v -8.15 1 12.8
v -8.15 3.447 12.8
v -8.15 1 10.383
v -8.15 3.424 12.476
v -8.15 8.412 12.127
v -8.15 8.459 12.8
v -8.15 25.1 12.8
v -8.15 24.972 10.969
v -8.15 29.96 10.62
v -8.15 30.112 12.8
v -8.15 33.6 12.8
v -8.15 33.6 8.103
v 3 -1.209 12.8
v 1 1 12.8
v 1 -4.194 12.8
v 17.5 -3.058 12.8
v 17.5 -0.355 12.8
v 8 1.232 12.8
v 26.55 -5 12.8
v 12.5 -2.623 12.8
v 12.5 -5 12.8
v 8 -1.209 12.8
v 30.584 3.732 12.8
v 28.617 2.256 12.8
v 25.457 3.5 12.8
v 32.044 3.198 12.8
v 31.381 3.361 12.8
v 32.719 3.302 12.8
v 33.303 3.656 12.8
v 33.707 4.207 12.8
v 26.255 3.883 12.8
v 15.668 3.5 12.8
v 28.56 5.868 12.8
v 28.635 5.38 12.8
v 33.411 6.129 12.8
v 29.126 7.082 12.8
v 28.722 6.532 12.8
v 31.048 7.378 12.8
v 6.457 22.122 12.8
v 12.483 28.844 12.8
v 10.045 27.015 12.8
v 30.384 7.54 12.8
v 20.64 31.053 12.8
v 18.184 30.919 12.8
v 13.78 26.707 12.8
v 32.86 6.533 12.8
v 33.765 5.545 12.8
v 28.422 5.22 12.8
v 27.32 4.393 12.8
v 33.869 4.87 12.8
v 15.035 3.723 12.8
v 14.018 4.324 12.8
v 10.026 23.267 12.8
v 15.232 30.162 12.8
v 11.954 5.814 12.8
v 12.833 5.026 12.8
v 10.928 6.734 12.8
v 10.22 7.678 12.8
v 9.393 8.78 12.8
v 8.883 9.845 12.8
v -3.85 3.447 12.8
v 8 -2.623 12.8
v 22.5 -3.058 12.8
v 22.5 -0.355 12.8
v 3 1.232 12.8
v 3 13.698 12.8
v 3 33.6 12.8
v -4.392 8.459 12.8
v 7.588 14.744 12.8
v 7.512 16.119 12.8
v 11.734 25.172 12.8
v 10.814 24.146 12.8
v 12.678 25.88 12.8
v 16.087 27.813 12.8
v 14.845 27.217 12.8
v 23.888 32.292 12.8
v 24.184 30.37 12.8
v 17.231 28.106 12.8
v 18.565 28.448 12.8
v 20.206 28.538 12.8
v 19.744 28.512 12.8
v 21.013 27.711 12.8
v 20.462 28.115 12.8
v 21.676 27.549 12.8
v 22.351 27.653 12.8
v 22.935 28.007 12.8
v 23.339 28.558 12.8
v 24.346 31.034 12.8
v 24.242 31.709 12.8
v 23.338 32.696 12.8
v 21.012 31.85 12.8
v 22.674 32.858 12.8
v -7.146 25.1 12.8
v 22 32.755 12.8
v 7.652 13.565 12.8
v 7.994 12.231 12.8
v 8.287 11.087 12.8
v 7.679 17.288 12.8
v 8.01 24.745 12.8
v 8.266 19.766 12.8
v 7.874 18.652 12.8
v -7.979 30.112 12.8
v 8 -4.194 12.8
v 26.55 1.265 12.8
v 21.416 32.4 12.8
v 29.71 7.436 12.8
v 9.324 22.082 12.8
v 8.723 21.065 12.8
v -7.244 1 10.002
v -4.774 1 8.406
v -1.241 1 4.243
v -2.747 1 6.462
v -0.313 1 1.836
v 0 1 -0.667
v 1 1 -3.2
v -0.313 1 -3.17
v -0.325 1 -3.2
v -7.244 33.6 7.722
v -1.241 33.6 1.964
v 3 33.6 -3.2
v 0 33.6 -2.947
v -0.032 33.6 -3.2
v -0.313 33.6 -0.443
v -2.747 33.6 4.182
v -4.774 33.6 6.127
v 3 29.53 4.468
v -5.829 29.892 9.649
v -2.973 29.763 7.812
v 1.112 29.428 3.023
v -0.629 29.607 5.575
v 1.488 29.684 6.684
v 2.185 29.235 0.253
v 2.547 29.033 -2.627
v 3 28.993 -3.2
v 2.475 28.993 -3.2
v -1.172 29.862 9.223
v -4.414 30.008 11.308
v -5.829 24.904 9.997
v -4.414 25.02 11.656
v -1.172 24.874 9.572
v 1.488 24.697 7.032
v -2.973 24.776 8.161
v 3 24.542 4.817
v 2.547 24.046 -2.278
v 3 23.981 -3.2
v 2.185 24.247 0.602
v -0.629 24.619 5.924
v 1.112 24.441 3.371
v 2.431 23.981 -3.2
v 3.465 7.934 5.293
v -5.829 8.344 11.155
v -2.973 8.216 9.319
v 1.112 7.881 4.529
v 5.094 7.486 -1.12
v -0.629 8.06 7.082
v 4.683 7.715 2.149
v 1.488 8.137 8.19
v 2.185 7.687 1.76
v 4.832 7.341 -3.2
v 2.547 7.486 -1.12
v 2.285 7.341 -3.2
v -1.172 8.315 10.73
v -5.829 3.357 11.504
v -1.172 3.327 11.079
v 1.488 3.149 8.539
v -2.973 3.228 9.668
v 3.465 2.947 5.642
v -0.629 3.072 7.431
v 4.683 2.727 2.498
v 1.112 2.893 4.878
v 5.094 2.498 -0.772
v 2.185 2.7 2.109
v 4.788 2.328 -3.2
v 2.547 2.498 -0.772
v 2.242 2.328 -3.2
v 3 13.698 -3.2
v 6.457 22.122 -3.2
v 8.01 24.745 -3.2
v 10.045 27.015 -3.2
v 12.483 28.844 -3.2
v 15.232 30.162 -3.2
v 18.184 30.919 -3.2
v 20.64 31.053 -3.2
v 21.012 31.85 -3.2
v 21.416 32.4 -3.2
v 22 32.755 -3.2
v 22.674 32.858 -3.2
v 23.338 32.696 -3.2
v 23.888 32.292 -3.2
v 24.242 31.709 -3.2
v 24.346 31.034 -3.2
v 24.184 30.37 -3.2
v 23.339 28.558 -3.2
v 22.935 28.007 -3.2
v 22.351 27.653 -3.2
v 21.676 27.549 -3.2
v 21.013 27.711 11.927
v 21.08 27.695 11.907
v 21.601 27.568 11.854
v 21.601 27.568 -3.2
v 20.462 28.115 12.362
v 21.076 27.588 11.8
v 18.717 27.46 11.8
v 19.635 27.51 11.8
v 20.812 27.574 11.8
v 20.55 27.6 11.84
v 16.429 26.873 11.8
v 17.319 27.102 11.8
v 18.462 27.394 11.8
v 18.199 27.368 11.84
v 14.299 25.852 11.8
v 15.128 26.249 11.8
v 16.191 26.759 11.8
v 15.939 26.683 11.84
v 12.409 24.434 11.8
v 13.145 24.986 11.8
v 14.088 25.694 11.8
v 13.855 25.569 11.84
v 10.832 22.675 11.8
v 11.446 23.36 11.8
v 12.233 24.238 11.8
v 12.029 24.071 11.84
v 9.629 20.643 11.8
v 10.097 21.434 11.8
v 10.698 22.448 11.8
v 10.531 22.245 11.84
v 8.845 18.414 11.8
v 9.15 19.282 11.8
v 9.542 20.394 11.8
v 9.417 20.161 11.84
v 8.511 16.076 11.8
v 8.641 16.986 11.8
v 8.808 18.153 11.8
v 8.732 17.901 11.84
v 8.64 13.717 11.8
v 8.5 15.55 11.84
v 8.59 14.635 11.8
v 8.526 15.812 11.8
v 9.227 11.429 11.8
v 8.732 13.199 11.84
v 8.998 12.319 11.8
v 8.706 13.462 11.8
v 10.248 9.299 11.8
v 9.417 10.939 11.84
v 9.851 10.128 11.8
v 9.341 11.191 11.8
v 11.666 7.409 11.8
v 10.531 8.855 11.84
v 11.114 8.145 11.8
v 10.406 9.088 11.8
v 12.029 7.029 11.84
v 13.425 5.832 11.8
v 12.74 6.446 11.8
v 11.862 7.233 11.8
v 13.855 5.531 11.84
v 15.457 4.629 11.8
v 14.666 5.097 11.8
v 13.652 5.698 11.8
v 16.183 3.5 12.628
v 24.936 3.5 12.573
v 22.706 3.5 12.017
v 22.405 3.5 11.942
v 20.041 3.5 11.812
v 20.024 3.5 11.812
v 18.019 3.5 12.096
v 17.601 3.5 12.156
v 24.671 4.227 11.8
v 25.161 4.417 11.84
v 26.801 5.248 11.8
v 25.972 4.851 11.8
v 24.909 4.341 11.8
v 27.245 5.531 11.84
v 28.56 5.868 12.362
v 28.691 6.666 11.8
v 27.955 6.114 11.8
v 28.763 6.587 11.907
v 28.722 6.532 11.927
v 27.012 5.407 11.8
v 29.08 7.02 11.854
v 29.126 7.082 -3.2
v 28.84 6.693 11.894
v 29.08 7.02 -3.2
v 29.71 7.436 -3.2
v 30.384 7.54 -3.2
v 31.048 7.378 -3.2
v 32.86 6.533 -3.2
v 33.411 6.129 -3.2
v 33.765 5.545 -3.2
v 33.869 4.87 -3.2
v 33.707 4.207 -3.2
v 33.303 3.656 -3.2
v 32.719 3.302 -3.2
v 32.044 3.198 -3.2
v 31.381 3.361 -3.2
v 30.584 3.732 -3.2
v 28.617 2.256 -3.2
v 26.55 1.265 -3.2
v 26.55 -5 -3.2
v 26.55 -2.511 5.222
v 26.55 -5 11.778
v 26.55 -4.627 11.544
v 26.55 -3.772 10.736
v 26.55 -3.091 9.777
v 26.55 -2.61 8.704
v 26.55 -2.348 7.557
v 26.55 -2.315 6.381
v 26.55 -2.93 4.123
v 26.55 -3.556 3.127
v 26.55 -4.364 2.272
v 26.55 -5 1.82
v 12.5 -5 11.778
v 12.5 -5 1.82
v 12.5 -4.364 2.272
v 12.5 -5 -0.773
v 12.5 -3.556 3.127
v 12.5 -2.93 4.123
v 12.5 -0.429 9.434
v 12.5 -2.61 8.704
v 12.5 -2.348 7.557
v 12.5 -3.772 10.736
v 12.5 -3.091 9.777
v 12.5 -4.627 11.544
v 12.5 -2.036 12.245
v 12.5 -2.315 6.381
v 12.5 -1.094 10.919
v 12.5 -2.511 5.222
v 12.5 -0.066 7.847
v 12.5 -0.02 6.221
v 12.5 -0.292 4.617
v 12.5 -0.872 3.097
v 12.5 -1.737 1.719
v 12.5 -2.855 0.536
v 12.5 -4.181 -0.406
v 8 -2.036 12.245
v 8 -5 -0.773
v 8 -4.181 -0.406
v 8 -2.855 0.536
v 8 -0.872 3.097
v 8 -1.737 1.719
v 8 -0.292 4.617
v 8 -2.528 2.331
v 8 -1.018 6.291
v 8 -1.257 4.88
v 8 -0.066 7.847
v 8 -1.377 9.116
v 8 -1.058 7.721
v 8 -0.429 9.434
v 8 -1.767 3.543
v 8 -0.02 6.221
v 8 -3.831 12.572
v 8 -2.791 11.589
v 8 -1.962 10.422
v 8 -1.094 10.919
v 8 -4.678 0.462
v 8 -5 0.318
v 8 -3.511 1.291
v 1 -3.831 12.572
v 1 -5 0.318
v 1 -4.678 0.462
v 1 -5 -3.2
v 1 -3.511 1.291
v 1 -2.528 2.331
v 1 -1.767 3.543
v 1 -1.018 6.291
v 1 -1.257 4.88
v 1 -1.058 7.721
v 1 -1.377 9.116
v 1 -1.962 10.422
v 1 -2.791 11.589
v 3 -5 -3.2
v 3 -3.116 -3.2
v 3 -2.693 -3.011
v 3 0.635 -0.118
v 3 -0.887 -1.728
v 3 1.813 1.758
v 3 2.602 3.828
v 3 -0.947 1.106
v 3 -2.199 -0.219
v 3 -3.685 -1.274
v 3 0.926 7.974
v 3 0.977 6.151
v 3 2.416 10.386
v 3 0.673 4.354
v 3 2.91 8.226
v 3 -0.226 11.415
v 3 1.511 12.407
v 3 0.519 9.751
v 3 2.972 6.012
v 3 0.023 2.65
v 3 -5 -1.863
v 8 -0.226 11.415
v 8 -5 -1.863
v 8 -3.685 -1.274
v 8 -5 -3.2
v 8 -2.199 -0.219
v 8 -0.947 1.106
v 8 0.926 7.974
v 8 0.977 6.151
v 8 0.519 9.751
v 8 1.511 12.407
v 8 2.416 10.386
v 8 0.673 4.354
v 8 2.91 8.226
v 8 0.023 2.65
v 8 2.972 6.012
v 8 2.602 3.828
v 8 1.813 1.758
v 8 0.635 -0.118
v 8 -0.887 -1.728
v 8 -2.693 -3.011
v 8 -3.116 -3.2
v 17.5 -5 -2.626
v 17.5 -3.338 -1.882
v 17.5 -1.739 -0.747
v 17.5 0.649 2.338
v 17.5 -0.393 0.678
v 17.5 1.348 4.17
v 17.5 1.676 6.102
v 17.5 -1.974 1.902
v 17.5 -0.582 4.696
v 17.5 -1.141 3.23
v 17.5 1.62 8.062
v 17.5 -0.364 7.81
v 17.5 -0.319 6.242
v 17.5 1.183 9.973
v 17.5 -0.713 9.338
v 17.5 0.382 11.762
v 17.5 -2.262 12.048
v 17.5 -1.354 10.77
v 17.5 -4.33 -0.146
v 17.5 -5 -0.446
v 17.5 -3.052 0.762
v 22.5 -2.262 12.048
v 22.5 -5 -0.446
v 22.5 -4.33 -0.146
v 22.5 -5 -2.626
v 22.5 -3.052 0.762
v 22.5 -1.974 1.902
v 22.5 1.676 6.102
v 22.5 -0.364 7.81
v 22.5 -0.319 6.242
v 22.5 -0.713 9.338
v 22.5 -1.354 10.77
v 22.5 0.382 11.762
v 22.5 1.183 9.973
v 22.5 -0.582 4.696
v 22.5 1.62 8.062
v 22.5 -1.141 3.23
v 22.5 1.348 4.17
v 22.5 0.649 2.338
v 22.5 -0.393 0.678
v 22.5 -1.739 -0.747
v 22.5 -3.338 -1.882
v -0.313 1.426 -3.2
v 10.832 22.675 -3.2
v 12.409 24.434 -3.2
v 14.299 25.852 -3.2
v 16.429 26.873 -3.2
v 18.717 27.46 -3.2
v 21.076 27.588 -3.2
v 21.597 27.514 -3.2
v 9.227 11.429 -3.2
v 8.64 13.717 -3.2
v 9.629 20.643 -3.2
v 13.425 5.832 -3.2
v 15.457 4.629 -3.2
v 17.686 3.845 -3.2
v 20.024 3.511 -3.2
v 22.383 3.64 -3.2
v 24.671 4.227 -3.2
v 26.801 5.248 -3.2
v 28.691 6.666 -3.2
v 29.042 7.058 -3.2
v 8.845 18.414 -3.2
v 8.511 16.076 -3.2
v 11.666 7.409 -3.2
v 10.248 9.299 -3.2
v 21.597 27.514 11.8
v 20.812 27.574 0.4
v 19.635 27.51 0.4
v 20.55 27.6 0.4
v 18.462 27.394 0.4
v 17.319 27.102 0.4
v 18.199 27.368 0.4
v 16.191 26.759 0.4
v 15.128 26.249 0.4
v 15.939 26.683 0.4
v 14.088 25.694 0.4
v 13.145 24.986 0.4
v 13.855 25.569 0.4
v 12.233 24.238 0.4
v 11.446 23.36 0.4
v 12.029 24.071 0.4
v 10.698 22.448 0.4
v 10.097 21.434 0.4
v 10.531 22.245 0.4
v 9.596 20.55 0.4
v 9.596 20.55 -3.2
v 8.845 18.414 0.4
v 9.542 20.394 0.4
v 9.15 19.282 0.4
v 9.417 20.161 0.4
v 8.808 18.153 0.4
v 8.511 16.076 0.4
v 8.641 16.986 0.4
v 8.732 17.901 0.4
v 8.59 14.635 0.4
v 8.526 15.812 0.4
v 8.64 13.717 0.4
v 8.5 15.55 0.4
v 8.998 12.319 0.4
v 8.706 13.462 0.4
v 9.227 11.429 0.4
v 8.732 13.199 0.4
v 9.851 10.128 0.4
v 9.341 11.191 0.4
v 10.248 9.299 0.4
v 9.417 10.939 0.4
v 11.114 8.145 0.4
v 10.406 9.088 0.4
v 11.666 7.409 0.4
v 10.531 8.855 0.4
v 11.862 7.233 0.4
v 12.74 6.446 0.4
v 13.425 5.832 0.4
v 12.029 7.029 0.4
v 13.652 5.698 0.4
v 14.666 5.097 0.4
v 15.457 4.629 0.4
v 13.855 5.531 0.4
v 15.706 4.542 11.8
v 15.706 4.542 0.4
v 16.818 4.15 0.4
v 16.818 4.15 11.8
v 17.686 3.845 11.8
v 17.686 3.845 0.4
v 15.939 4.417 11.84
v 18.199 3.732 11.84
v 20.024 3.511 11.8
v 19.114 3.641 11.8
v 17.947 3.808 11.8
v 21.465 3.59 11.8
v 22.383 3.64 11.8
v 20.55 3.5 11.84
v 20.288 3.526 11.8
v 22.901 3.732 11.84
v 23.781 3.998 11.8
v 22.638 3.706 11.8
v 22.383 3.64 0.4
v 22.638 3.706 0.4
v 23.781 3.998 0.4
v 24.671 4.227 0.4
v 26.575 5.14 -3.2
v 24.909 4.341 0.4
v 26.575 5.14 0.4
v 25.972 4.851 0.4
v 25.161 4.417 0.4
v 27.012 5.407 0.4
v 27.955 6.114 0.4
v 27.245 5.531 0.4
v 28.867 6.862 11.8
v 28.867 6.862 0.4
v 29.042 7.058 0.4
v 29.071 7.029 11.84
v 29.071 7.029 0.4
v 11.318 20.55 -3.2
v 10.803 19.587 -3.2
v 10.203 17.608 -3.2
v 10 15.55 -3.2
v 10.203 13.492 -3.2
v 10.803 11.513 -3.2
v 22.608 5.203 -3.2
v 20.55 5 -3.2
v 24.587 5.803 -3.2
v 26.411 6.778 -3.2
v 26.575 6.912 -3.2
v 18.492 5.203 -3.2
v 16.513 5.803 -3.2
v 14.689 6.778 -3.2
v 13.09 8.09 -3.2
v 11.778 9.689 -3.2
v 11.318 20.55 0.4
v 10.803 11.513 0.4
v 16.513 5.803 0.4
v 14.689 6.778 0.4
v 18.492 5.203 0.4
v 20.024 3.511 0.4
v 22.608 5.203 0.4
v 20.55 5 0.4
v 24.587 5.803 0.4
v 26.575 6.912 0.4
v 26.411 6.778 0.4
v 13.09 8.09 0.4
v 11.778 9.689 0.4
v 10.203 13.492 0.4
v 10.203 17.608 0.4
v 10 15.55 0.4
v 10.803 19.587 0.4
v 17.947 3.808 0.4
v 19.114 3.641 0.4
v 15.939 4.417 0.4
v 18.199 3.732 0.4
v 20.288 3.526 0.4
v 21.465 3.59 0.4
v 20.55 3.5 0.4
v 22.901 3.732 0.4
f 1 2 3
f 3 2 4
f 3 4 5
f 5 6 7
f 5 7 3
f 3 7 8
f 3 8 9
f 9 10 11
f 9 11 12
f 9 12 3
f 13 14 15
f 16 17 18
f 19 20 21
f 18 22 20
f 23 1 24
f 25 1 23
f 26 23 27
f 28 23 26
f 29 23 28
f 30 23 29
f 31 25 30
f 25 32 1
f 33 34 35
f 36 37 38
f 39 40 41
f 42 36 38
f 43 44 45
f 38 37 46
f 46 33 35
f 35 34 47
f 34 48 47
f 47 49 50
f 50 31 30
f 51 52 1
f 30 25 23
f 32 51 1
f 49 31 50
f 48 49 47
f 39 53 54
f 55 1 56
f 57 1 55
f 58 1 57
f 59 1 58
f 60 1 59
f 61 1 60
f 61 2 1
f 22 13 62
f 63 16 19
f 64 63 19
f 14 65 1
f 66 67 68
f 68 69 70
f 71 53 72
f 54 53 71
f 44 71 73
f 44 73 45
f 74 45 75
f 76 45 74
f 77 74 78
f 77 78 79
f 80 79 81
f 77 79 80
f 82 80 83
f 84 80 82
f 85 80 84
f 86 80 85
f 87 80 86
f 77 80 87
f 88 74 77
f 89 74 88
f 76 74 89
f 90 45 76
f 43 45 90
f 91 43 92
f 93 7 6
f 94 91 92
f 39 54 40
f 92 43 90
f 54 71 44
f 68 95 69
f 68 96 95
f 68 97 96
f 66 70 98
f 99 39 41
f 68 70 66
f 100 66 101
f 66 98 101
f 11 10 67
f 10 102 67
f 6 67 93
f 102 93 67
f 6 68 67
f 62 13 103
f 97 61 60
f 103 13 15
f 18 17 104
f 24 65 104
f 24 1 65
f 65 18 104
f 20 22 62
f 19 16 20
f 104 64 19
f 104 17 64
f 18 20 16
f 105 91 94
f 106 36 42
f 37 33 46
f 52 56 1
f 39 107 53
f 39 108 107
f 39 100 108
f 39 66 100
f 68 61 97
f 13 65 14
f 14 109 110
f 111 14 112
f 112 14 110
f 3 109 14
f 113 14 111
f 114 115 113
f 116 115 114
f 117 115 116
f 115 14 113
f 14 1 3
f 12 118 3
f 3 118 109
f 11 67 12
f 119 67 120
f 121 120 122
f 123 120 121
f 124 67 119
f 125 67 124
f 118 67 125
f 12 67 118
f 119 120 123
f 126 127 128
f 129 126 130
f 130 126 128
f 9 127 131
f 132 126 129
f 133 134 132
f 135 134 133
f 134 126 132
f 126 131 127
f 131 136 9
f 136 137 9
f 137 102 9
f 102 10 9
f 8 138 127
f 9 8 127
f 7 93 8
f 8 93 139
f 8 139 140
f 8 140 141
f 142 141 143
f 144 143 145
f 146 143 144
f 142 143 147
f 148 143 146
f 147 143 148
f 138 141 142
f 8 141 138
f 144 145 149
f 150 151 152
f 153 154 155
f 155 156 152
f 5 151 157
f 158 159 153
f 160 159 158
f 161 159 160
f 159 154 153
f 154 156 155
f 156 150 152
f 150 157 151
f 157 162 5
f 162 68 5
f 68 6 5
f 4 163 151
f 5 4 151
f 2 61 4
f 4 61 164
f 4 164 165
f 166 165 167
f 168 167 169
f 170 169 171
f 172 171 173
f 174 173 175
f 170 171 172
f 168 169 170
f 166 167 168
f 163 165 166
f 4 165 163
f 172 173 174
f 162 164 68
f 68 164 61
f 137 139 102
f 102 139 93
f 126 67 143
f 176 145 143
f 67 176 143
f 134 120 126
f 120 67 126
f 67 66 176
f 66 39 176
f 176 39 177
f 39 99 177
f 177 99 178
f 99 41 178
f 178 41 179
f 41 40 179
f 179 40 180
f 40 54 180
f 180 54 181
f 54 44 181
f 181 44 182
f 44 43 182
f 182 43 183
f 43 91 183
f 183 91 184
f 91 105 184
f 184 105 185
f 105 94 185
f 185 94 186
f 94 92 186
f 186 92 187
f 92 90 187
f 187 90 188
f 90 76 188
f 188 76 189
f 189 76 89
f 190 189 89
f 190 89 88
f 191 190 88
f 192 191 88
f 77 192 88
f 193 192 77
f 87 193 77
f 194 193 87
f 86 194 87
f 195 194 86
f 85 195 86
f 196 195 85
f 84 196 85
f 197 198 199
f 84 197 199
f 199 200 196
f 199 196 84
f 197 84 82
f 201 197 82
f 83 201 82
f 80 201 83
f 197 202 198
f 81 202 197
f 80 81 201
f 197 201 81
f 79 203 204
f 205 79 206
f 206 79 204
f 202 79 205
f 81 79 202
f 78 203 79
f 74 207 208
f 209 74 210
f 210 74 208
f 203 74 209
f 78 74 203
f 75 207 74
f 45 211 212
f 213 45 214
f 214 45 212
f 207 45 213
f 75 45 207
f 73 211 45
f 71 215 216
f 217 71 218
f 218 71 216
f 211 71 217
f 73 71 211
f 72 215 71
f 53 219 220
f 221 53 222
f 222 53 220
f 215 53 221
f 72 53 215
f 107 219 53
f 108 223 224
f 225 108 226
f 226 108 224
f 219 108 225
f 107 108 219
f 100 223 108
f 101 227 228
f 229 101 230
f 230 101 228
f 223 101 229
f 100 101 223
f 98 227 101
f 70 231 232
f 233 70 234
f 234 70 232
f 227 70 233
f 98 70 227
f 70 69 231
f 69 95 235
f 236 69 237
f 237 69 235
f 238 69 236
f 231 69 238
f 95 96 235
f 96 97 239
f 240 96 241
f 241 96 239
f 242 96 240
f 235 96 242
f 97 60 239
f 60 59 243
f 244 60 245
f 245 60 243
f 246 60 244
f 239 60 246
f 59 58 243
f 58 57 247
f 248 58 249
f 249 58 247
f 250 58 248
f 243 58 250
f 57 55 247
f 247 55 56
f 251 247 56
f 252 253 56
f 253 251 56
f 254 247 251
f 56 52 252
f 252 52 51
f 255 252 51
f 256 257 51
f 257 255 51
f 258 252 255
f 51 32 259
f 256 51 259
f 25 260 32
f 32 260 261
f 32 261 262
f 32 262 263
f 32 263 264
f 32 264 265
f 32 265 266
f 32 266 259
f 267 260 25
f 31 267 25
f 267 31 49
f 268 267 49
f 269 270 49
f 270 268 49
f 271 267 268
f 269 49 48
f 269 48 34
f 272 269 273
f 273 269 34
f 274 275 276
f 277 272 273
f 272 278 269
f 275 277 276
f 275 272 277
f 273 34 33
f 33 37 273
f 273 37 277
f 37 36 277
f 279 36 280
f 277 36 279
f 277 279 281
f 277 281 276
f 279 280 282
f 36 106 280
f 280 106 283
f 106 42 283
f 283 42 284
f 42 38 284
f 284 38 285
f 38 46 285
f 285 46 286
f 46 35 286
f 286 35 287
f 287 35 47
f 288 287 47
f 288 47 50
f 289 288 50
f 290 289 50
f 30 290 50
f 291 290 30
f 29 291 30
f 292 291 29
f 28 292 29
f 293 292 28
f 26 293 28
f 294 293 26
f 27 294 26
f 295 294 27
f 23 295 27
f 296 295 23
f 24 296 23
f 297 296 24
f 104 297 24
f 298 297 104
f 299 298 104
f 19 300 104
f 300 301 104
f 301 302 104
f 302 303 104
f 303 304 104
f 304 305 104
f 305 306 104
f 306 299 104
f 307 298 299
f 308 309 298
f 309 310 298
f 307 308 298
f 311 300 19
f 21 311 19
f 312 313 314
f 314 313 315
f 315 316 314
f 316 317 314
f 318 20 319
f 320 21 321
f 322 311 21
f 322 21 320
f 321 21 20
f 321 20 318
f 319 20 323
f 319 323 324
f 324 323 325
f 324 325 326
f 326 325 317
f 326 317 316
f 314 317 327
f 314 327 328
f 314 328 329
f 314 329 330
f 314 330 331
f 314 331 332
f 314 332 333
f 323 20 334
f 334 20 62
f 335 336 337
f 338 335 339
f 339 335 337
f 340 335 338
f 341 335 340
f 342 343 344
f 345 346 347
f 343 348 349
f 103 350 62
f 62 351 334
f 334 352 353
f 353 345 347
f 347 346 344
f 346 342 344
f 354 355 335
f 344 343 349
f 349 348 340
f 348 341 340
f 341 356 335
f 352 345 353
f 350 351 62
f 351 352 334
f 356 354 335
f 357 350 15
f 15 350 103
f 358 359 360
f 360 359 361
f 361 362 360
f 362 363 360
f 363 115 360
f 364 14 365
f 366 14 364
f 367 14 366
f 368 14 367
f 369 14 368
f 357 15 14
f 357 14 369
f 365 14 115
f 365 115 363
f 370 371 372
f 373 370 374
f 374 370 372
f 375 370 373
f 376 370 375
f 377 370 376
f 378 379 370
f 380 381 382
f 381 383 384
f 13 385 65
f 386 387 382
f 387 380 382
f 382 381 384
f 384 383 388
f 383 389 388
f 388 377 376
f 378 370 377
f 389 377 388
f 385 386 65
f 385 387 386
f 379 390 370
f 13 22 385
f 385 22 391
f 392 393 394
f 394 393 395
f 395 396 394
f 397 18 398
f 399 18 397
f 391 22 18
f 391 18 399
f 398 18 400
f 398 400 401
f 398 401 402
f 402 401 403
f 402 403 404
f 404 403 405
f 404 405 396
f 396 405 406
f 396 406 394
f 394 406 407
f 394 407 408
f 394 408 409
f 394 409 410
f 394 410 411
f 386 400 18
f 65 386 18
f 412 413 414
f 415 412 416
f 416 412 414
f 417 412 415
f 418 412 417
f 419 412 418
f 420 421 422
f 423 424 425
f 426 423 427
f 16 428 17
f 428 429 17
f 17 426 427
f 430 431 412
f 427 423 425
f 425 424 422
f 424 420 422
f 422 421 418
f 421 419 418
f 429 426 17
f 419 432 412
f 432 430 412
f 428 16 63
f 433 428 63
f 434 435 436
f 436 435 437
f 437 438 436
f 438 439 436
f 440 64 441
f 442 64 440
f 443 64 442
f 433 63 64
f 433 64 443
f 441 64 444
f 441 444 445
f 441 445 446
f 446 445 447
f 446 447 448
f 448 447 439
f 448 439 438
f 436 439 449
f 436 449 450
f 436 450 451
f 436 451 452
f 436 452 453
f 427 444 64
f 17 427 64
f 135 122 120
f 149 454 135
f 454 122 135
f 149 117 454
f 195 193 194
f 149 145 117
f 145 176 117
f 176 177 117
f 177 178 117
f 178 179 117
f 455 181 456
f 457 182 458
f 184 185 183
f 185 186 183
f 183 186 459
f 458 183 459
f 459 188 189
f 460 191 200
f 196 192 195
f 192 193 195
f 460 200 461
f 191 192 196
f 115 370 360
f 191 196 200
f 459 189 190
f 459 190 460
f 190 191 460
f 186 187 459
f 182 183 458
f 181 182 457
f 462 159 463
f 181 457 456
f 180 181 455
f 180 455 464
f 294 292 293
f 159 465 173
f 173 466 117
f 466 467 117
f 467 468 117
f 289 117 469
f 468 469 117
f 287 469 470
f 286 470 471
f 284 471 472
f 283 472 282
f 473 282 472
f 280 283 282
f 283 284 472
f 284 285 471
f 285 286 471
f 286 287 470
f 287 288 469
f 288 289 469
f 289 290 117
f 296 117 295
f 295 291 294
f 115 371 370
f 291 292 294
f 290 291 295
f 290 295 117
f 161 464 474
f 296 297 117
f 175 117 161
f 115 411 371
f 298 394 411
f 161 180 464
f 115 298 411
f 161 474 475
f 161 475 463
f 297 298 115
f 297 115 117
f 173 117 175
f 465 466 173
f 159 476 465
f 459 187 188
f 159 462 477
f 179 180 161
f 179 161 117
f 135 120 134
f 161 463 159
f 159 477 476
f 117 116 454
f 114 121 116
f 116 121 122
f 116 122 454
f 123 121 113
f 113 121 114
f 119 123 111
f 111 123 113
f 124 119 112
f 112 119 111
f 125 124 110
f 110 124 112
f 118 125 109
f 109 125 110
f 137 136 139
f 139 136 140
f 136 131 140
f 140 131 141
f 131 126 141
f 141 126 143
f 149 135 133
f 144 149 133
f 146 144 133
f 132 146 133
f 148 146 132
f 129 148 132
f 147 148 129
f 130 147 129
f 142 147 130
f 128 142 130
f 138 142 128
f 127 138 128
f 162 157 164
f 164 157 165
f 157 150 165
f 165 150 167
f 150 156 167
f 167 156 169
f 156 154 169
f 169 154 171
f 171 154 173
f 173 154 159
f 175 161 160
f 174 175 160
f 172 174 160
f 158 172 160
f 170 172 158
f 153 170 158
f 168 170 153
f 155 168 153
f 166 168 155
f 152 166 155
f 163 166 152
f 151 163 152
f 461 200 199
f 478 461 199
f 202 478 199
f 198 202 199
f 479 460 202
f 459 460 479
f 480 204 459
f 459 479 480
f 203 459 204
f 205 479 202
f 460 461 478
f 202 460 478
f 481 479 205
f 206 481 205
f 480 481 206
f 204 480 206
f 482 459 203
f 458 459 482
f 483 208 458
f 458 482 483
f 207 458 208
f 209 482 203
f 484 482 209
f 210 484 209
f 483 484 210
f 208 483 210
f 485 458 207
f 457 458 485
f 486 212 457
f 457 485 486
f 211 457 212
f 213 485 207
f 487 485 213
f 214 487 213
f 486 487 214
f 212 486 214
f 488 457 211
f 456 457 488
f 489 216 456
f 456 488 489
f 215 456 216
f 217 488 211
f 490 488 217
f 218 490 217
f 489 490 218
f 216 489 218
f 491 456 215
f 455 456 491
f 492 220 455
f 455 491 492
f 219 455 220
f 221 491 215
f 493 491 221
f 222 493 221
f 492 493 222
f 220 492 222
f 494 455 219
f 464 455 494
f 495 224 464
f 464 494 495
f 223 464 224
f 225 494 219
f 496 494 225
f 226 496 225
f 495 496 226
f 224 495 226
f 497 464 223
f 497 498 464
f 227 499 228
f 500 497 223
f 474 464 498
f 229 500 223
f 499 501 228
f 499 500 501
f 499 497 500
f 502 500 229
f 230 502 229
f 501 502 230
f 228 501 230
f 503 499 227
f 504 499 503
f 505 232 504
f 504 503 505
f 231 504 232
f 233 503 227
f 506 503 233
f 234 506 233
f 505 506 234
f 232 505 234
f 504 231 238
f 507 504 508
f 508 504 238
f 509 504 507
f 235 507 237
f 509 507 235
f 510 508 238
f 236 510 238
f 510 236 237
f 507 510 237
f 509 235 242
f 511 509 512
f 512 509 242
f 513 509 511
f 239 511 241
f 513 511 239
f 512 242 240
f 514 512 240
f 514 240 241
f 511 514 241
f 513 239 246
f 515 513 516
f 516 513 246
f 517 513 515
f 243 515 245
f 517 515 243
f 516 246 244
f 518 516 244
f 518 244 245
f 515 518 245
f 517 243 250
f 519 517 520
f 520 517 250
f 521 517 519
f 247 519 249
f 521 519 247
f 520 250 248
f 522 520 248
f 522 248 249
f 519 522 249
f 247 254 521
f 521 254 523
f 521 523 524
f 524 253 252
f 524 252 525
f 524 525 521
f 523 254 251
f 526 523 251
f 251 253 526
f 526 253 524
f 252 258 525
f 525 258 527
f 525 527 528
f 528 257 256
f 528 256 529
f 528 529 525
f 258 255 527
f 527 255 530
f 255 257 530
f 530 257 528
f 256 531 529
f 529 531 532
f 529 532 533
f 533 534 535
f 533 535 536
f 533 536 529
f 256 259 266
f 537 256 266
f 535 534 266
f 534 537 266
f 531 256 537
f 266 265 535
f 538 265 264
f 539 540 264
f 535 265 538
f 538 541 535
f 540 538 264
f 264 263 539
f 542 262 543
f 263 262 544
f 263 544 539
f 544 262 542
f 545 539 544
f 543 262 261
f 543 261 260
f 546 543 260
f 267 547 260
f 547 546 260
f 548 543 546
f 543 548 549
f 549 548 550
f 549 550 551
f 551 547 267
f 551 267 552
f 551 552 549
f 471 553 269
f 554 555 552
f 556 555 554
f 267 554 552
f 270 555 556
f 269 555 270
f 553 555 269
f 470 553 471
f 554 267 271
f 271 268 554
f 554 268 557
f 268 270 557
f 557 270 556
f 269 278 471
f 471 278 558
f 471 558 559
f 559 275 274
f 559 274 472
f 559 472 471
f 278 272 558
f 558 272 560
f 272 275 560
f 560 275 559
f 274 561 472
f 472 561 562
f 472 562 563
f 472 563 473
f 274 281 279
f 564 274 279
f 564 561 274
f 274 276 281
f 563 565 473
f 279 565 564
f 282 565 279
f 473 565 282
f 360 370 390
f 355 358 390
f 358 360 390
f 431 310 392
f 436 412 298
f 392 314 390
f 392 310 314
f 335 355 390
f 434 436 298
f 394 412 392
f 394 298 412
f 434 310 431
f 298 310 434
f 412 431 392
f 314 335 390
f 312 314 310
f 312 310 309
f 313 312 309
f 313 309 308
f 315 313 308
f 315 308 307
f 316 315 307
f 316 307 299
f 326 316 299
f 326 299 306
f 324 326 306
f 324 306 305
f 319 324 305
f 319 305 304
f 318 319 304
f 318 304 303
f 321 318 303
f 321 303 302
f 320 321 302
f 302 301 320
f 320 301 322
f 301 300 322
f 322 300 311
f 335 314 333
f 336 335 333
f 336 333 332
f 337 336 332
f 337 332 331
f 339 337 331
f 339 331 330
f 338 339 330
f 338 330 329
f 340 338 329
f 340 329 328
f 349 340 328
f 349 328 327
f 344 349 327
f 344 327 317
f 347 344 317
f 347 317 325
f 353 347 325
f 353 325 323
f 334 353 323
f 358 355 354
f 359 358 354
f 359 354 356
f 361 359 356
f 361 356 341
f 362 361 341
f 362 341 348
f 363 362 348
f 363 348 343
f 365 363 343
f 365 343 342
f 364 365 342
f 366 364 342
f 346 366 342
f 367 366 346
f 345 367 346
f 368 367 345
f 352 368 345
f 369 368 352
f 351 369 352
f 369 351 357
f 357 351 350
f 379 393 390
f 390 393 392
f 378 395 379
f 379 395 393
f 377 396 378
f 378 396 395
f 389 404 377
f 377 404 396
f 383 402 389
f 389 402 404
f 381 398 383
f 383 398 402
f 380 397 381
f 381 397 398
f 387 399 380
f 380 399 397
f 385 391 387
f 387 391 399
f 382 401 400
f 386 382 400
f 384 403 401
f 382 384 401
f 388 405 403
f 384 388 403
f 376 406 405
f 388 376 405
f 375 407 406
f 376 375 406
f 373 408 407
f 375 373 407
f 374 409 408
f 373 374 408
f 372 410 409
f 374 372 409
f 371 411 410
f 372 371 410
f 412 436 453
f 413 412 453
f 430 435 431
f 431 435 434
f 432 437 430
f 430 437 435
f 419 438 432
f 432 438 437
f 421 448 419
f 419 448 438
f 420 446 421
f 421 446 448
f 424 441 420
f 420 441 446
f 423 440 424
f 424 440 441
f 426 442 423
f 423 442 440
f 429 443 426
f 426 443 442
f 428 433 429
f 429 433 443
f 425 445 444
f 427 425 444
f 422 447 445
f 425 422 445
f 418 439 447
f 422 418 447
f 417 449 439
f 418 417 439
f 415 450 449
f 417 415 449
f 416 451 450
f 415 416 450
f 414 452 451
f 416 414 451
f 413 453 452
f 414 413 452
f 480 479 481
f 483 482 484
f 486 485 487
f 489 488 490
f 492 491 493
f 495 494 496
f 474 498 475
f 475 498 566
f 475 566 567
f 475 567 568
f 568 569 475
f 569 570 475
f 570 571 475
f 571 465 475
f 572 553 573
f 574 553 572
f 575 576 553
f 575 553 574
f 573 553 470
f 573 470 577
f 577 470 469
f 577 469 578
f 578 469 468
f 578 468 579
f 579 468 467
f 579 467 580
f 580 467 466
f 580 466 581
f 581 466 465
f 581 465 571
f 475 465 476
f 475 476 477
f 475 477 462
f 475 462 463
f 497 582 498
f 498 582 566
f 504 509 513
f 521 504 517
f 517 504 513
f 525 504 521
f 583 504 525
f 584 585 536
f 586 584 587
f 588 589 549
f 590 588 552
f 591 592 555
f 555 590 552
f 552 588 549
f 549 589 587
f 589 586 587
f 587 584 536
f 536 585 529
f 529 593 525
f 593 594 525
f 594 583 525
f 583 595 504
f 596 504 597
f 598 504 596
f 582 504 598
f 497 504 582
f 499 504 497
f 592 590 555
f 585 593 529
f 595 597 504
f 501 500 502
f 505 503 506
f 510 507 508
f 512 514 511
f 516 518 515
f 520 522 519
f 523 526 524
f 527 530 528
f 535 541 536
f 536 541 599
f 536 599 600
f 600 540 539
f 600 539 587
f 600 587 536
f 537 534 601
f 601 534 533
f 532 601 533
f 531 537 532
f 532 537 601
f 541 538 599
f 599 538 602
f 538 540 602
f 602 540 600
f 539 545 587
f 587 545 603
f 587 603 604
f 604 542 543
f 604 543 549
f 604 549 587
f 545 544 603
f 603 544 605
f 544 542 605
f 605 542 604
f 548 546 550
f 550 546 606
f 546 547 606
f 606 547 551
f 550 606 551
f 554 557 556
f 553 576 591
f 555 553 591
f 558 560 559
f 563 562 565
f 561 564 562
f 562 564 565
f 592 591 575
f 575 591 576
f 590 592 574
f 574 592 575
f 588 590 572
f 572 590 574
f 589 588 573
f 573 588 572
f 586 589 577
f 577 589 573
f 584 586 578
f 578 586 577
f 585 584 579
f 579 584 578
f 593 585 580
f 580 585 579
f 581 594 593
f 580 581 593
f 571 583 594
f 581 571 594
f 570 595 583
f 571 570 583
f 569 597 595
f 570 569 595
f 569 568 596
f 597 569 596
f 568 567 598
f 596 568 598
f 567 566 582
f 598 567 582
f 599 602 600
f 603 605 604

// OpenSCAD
// file: ../standard_optomechanics/cylinder_clamp.scad
use <../utilities.scad>;
d=0.05;

//for 1 inch/25mm post clamp, an inner radius of 12.8 is good.
	
module cylinder_clamp(
	inner_r=12.8, //radius of the cylinder being clamped (ish!)
	clamp_h=11, //thicknedess of the clamp along the cylinder axis
	clamp_t=4, //thickness of the clamp radially
	flat_t=8, //how thick the bottom of the clamp is (often need to allow for the mounting bolt head here)
	flat_width=15, //width of the flat base
	mounting_bolt=4, //nominal size of mounting bolt (default is 4 for M4, 0 to disable)
	nut_trap=false,
	bevel_top=0.5, //size of 45 degree bevel on top surface
	bevel_bottom=0.8 //size of 45 degree bevel on bottom of hole
	){
	assign(
		post_r = inner_r, //poor initial choice of name!
		bolt_flat_w=10, //width of the region where the bolt is
		gap_w=3 //size of the gap that is squeezed by the bolt
	)
	difference(){
		hull(){
			cylinder(h=clamp_h,r=post_r+clamp_t,center=true,$fn=48);
			translate([0,-post_r-flat_t/2,0]) cube([flat_width,flat_t,clamp_h],center=true);
			translate([0,post_r+bolt_flat_w/2,0]) cube([12,bolt_flat_w,clamp_h],center=true);
		}
	
		cylinder(h=9999,r=post_r,center=true,$fn=48); //cylinder being clamped
		//bevels, top and bottom
		translate([0,0,-clamp_h/2]) cylinder(r1=post_r+3*bevel_bottom,r2=post_r-bevel_bottom,h=4*bevel_bottom,center=true);
		translate([0,0,clamp_h/2]) cylinder(r2=post_r+3*bevel_top,r1=post_r-bevel_top,h=4*bevel_top,center=true);
		//gap (squeezed by bolt)
		translate([0,999,0]) cube([gap_w,999*2,999],center=true); //gap
	
		//clamping bolt
		translate([gap_w/2+2,post_r+bolt_flat_w/2,0]) rotate([0,0,-90]) nut_y(4,h=999,shaft=true);
		translate([-gap_w/2-2,post_r+bolt_flat_w/2,0]) rotate([0,0,90]) cylinder_with_45deg_top(r=4,h=999,$fn=16); //counterbore for nut head
	
		if(mounting_bolt > 0){
			//mounting bolt
			translate([0,-post_r-4.5,0]) rotate([-90,0,0]){
				intersection(){
					rotate([90,0,0])
						if(nut_trap){
							nut_y(mounting_bolt,fudge=1.15,shaft=true,h=999);
						}else{
							screw_y(mounting_bolt,fudge=1.07,shaft=true,h=999);
						}
					cube([inner_r*2,inner_r*2,clamp_h*2],center=true);
				}
			}
		}
		//in the case of thick clamps with thin flats, this keeps the bottom flat
		translate([0,-inner_r-flat_t-999,0]) cube([9999,999*2,9999],center=true);
	}
}

module cylinder_clamp_v(
	inner_r=12.8, //radius of the cylinder being clamped (ish!)
	clamp_h=10, //width of the clamp along the cylinder (y) axis
	clamp_t=4, //thickness of the clamp radially
	flat_t=8, //how thick the bottom of the clamp is (often need to allow for the mounting bolt head here)
	flat_width=15, //width of the flat base
	mounting_bolt=4, //nominal size of mounting bolt (default is 4 for M4, 0 to disable)
	bevel=0.5 //put a 45 degree bevel on the edges of the hole
	){
	assign(
		post_r = inner_r, //poor initial choice of name!
		bolt_flat_w=11, //width of the region where the bolt is
		gap_w=2*inner_r*sin(45/2),//sin(acos(1-(9/2-4/2*1.22)/inner_r))*inner_r //size of the gap that is squeezed by the bolt
		bolt_z = inner_r+4/2*1.22+d //position of bolt (so bolt just clears the cylinder we're clamping
	)assign( //the second assign statement allows us to use gap_w
		bolt_span=gap_w+4+d//max(2*inner_r*sin(acos(1-(9/2-4/2*1.22)/inner_r)), gap_w+4)
	)
	difference(){
		hull(){
			rotate([90,0,0]) cylinder(h=clamp_h,r=inner_r+clamp_t,center=true,$fn=48);
			translate([0,0,-inner_r-flat_t/2]) cube([flat_width,clamp_h,flat_t],center=true);
			translate([0,0,bolt_z]) cube([gap_w+9,clamp_h,bolt_flat_w],center=true);
		}
	
		cylinder_with_45deg_top(h=9999,r=post_r,center=true,$fn=48); //cylinder being clamped
		reflect([0,1,0]) translate([0,clamp_h/2,0]) rotate([90,0,0]) cylinder(r1=post_r+3*bevel,r2=post_r-bevel,h=4*bevel,center=true); //bevel
		translate([0,0,999]) cube([gap_w,999,999*2],center=true); //gap
	
		//clamping bolt
		translate([bolt_span/2,0,bolt_z]) rotate([0,0,-90]) nut_y(4,h=999,shaft=true);
		translate([-bolt_span/2,0,bolt_z]) rotate([0,0,90]) cylinder_with_45deg_top(r=4,h=999,$fn=16); //counterbore for nut head
	
		if(mounting_bolt > 0){
			//mounting bolt
			translate([0,0,-post_r-4.5]){
				cylinder(r=mounting_bolt*1.1,h=post_r,$fn=16);
				cylinder(r=mounting_bolt/2*1.22,h=flat_t*2,center=true,$fn=16);
			}
		}
		translate([0,0,-inner_r-flat_t-999]) cube([9999,9999,999*2],center=true);
	}
}

translate([0,30,0]) cylinder_clamp_v(30.5/2, 10, flat_width=24, mounting_bolt=4, flat_t=8);

cylinder_clamp(30.5/2, flat_width=24, mounting_bolt=4, flat_t=8,nut_trap=true);
// file: cylinder_clip.scad
use <../utilities.scad>;

module cylinder_clip(r=1,t=3,opening_angle=120,wing_length=2,wing_angle=45,flat_w=10,flat_t=3,h=10,$fn=$fn){
	union(){
		difference(){
			hull(){
				cylinder(r=r+t,$fn=$fn,h=h);
				translate([-flat_w/2,-r-flat_t,0]) cube([flat_w,0.1,h]);
			}
			cylinder(r=r,$fn=$fn,h=99999,center=true);
			cylinder(r1=r+2,r2=r,$fn=$fn,h=2,center=true);
			scale([tan(opening_angle/2),1,1]) rotate([0,0,45]) translate([0,0,-1]) cube([1,1,1]*9999);
		}
		reflect([1,0,0]) translate([sin(opening_angle/2),cos(opening_angle/2),0]*(r+t/2)) hull() repeat([sin(wing_angle),cos(wing_angle),0]*wing_length,2)
			cylinder(r=t/2,h=h,$fn=16);
			
	}
}

//cylinder_clip(r=3,t=2,flat_w=6);
union(){
	cylinder_clip(r=21,t=4.5,flat_t=10,opening_angle=100,$fn=64);
	translate([-5,-22-5-20,0]) cube([10,20,10]);
}
// main file
use <../utilities.scad>;
use <./cylinder_clip.scad>;
use <../standard_optomechanics/cylinder_clamp.scad>;

socket_radius = 24.3/2-0.1;
clip_t = 3.5;
vbrake_mount_r2 = 11.6/2+0.2;
vbrake_mount_r1 = 14/2+0.3;
corner_clearance = 1;
vbrake_mount_l1 = 8;
vbrake_mount_l2 = 20;
vbrake_mount_lip_l = 4.5;
clip_h = 16;
fork = [32.6,25.6];
base_z = -fork[1]/2; //in original this was -fork[1]/2+1
mount_h = clip_h;
reinforcement = [13,13];
vbrake_pos = [0,-vbrake_mount_r1-1,vbrake_mount_r2-fork[1]/2];
$fn=32;
d=0.05;

module annulus(inner_r,thickness,h){
	difference(){
		cylinder(r=inner_r+thickness,h=h);
		cylinder(r=inner_r,h=99999,center=true);
	}
}
module cable_tie(inner_r){
	annulus(inner_r+2,2,5);
}

mirror([0,0,1])
//mirror([1,0,0])
difference(){
	union(){
		translate([socket_radius+clip_t+5,socket_radius+clip_t,base_z]) rotate(-70) cylinder_clip(r=socket_radius, t=clip_t,flat_w=1,flat_t=clip_t+5,h=clip_h,opening_angle=130);
		translate([corner_clearance,-5,base_z]) cube([socket_radius+clip_t+10,5+clip_t,mount_h]); //attachment to V brake mount
		translate([-fork[0]/4,corner_clearance,base_z]) cube([fork[0]/4+3,fork[0],mount_h]); //attachment to fork
		translate([corner_clearance,corner_clearance,base_z]) hull(){
			cube([reinforcement[0],d,mount_h]);
			cube([d,reinforcement[1],mount_h]);
		}
		translate([clip_t+5,clip_t,base_z+clip_h-3.6]) cube([socket_radius*1.5,socket_radius+5,3.6]);
	}

	// Pedal mount
	translate([socket_radius+clip_t+5,socket_radius+clip_t,0]) cylinder(r=socket_radius-1.5,h=999,center=true);
	translate([socket_radius+clip_t+5,socket_radius+clip_t,base_z]) cylinder(r=socket_radius,h=clip_h-3.6);
//	translate([socket_radius+clip_t+5,socket_radius+clip_t,base_z+clip_h-3.6]) cylinder(r1=socket_radius,r2=socket_radius-1.5,h=0.75);

translate(vbrake_pos) rotate([4,0,0]) translate(-vbrake_pos){
		//////////// Fork
		translate([-fork[0]/2,0,0]) rotate([-90,0,0]) scale([fork[0]/fork[1],1,1]){
			cylinder(r=fork[1]/2,h=999,center=true);
			translate([0,0,3]) cable_tie(fork[1]/2);
			translate([0,0,fork[0]-8]) cable_tie(fork[1]/2);
		}
	
		//////////// V brake mount
		translate(vbrake_pos) rotate([0,90,0]){
			cylinder(r=vbrake_mount_r1,h=vbrake_mount_l1+d);
			translate([0,0,vbrake_mount_l1]) cylinder(r=vbrake_mount_r1+1,h=vbrake_mount_lip_l);
			translate([0,0,vbrake_mount_l1+vbrake_mount_lip_l]) cylinder(r=vbrake_mount_r2,h=vbrake_mount_l2);
			// Cable tie points
			translate([0,0,vbrake_mount_l1-5]) cable_tie(vbrake_mount_r1);
			translate([0,0,vbrake_mount_l1+vbrake_mount_lip_l+5]) cable_tie(vbrake_mount_r2);
		}
	}
}
